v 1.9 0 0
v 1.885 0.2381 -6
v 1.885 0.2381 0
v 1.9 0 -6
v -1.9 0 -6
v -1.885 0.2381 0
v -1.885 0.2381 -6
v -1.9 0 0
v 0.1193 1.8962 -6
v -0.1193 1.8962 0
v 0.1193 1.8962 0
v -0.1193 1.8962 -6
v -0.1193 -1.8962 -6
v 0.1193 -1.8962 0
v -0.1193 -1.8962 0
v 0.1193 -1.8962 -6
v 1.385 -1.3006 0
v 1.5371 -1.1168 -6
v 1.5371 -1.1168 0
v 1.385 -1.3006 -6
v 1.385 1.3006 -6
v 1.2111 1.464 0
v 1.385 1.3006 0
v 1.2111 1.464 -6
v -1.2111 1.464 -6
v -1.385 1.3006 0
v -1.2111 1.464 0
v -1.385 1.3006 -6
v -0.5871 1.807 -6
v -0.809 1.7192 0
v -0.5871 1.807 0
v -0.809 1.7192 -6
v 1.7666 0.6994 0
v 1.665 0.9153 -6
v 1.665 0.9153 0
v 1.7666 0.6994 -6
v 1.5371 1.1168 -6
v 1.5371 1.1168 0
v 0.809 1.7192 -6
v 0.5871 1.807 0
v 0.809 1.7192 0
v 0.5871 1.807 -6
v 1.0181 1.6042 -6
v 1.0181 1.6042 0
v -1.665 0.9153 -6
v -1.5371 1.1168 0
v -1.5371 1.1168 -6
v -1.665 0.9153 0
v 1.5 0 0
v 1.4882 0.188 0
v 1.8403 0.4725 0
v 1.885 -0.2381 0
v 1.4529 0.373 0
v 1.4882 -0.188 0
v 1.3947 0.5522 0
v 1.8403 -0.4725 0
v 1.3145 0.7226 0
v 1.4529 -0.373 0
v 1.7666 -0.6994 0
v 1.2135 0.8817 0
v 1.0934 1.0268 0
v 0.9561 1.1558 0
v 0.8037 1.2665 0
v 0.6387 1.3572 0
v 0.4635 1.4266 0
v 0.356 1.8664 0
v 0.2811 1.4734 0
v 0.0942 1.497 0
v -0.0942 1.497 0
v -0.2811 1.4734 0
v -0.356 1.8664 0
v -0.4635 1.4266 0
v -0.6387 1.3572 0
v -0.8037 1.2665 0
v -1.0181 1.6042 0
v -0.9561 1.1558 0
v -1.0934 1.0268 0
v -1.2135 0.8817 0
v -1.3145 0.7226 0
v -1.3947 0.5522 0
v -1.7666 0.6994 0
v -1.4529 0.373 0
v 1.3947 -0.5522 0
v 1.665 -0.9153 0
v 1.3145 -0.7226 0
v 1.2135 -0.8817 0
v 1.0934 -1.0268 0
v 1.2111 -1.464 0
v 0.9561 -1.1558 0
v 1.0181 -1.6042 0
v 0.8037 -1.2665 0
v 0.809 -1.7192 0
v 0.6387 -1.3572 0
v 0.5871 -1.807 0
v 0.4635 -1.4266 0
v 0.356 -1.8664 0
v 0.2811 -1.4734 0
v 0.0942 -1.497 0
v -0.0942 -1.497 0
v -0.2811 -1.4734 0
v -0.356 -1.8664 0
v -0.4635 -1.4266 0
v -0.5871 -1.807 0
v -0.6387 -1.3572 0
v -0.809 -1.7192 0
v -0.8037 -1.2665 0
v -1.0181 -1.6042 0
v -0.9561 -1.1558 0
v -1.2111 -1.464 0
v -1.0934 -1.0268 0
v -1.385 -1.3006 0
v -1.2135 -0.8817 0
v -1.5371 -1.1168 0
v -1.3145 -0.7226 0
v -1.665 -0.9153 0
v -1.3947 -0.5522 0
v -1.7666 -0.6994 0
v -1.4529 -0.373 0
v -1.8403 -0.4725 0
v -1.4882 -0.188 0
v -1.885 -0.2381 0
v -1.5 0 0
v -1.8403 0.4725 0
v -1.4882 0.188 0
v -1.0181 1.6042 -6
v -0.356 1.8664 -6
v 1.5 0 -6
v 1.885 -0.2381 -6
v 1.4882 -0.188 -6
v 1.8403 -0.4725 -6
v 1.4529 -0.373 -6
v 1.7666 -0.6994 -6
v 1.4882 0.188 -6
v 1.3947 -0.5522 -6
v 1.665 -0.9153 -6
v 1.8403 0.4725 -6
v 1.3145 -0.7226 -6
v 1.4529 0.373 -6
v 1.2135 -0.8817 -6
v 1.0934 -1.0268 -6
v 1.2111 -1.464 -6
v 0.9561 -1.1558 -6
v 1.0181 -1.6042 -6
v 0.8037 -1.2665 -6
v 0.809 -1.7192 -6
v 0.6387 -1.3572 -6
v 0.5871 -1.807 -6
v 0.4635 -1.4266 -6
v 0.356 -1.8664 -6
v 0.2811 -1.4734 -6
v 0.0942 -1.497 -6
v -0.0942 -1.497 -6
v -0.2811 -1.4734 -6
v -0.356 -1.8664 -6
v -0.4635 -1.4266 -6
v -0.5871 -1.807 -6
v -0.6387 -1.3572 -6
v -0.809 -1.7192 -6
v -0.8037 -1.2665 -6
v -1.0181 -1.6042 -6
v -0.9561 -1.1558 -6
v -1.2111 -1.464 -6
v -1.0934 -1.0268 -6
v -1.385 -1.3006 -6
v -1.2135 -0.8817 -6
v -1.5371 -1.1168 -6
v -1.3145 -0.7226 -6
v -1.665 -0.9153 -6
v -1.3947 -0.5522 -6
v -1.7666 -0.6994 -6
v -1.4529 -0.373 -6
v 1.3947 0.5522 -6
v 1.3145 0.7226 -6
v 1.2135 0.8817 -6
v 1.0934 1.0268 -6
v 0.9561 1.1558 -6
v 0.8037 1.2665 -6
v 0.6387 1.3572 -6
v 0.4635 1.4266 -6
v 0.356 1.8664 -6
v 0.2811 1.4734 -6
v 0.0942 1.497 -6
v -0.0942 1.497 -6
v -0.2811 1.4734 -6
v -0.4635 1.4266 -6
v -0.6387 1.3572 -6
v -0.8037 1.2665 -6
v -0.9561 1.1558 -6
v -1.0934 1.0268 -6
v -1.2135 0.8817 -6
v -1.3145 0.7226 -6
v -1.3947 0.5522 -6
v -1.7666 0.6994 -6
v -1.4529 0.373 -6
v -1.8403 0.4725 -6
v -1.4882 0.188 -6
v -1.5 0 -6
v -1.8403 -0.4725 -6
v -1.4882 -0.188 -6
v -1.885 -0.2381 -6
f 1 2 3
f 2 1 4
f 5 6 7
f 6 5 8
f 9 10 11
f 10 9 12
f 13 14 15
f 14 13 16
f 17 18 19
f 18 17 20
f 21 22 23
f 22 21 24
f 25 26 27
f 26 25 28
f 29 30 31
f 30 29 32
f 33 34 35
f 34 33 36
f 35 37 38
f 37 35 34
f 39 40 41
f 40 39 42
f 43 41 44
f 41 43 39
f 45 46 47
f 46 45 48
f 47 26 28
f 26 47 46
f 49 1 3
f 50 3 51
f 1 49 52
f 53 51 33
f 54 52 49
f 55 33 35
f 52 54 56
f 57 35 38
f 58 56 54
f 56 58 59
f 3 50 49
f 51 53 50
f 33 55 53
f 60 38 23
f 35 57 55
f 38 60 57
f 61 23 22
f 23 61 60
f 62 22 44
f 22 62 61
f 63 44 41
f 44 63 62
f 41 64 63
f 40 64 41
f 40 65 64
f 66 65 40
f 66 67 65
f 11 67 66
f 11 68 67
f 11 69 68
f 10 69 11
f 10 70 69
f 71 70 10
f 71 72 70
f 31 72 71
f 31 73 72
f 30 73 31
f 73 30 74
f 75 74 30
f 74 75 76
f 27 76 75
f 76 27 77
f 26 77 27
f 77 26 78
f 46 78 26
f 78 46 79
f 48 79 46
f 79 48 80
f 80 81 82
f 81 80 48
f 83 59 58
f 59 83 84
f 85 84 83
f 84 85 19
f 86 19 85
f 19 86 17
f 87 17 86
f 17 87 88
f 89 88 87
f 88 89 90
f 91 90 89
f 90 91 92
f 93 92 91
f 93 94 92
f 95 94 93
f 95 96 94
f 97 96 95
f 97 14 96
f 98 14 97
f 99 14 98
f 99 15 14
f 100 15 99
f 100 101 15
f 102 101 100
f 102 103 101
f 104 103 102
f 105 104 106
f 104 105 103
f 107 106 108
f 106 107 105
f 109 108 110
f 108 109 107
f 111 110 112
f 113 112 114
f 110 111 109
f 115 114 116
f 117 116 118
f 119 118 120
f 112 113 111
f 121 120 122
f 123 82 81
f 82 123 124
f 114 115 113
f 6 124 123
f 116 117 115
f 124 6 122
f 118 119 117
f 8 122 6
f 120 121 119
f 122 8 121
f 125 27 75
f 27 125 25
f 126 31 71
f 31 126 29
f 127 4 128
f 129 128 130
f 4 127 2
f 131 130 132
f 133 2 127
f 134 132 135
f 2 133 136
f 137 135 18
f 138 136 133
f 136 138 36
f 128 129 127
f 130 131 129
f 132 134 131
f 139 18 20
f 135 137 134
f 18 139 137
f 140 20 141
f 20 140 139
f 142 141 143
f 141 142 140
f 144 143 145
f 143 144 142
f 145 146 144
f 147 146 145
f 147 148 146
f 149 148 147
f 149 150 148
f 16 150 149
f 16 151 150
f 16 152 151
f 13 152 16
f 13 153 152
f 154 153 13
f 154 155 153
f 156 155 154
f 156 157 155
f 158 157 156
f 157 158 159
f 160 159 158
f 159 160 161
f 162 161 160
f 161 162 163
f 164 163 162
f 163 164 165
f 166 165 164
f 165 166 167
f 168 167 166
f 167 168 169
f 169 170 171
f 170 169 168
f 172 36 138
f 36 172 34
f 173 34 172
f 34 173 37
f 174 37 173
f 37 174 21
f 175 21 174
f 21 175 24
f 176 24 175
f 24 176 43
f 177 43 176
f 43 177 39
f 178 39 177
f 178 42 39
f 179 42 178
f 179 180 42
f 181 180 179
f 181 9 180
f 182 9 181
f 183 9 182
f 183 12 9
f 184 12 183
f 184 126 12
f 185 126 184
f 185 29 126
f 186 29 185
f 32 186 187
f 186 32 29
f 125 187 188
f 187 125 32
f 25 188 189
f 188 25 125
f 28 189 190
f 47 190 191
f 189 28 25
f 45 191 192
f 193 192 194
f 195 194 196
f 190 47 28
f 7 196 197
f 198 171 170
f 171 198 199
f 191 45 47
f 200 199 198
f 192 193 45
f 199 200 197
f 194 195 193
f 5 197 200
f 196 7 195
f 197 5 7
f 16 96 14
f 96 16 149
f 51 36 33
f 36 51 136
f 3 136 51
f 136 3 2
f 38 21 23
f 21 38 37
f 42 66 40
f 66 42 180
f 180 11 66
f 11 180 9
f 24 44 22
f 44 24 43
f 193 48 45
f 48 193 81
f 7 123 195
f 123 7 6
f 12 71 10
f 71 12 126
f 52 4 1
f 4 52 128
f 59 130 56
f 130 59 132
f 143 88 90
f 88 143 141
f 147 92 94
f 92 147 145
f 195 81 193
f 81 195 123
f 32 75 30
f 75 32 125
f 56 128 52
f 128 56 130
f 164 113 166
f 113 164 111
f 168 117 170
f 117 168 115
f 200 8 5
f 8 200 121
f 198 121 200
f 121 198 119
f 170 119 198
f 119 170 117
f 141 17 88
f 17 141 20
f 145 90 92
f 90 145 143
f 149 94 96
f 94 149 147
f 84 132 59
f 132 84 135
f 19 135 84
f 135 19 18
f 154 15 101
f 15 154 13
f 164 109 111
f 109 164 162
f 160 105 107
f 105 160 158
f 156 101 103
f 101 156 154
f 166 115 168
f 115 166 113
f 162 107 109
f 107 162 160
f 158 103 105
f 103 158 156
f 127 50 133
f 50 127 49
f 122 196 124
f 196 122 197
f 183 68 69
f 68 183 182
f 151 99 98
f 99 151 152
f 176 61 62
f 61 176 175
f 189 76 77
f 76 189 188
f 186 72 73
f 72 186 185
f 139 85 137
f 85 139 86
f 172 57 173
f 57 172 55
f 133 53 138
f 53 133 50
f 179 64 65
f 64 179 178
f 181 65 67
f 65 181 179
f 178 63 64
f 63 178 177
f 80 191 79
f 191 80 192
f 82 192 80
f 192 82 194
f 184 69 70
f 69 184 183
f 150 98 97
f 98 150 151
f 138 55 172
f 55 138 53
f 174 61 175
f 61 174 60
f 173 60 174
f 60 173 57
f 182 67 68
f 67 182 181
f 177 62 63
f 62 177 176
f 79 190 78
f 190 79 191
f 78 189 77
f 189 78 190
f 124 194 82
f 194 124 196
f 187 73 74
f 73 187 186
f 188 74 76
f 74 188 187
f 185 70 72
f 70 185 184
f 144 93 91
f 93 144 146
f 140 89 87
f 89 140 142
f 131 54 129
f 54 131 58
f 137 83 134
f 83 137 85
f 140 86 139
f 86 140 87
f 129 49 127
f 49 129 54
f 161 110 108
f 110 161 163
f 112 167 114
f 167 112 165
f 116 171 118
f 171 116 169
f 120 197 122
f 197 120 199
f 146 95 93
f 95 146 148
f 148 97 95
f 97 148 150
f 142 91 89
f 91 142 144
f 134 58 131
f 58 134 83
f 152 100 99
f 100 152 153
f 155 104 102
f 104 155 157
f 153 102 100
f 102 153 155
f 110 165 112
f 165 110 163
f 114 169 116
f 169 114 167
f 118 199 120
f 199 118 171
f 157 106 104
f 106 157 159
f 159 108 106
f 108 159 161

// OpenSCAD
$fn = 50;


difference() {
	union() {
		translate(v = [0, 0, -6.0000000000]) {
			rotate(a = [0, 0, 0]) {
				cylinder(h = 6, r = 1.9000000000);
			}
		}
		translate(v = [0, 0, -6.0000000000]) {
			rotate(a = [0, 0, 0]) {
				cylinder(h = 6, r = 1.9000000000);
			}
		}
		translate(v = [0, 0, -6.0000000000]) {
			rotate(a = [0, 0, 0]) {
				cylinder(h = 6, r = 1.9000000000);
			}
		}
	}
	union() {
		translate(v = [0, 0, -10]) {
			rotate(a = [0, 0, 0]) {
				cylinder(h = 100, r = 1.5000000000);
			}
		}
	}
}
